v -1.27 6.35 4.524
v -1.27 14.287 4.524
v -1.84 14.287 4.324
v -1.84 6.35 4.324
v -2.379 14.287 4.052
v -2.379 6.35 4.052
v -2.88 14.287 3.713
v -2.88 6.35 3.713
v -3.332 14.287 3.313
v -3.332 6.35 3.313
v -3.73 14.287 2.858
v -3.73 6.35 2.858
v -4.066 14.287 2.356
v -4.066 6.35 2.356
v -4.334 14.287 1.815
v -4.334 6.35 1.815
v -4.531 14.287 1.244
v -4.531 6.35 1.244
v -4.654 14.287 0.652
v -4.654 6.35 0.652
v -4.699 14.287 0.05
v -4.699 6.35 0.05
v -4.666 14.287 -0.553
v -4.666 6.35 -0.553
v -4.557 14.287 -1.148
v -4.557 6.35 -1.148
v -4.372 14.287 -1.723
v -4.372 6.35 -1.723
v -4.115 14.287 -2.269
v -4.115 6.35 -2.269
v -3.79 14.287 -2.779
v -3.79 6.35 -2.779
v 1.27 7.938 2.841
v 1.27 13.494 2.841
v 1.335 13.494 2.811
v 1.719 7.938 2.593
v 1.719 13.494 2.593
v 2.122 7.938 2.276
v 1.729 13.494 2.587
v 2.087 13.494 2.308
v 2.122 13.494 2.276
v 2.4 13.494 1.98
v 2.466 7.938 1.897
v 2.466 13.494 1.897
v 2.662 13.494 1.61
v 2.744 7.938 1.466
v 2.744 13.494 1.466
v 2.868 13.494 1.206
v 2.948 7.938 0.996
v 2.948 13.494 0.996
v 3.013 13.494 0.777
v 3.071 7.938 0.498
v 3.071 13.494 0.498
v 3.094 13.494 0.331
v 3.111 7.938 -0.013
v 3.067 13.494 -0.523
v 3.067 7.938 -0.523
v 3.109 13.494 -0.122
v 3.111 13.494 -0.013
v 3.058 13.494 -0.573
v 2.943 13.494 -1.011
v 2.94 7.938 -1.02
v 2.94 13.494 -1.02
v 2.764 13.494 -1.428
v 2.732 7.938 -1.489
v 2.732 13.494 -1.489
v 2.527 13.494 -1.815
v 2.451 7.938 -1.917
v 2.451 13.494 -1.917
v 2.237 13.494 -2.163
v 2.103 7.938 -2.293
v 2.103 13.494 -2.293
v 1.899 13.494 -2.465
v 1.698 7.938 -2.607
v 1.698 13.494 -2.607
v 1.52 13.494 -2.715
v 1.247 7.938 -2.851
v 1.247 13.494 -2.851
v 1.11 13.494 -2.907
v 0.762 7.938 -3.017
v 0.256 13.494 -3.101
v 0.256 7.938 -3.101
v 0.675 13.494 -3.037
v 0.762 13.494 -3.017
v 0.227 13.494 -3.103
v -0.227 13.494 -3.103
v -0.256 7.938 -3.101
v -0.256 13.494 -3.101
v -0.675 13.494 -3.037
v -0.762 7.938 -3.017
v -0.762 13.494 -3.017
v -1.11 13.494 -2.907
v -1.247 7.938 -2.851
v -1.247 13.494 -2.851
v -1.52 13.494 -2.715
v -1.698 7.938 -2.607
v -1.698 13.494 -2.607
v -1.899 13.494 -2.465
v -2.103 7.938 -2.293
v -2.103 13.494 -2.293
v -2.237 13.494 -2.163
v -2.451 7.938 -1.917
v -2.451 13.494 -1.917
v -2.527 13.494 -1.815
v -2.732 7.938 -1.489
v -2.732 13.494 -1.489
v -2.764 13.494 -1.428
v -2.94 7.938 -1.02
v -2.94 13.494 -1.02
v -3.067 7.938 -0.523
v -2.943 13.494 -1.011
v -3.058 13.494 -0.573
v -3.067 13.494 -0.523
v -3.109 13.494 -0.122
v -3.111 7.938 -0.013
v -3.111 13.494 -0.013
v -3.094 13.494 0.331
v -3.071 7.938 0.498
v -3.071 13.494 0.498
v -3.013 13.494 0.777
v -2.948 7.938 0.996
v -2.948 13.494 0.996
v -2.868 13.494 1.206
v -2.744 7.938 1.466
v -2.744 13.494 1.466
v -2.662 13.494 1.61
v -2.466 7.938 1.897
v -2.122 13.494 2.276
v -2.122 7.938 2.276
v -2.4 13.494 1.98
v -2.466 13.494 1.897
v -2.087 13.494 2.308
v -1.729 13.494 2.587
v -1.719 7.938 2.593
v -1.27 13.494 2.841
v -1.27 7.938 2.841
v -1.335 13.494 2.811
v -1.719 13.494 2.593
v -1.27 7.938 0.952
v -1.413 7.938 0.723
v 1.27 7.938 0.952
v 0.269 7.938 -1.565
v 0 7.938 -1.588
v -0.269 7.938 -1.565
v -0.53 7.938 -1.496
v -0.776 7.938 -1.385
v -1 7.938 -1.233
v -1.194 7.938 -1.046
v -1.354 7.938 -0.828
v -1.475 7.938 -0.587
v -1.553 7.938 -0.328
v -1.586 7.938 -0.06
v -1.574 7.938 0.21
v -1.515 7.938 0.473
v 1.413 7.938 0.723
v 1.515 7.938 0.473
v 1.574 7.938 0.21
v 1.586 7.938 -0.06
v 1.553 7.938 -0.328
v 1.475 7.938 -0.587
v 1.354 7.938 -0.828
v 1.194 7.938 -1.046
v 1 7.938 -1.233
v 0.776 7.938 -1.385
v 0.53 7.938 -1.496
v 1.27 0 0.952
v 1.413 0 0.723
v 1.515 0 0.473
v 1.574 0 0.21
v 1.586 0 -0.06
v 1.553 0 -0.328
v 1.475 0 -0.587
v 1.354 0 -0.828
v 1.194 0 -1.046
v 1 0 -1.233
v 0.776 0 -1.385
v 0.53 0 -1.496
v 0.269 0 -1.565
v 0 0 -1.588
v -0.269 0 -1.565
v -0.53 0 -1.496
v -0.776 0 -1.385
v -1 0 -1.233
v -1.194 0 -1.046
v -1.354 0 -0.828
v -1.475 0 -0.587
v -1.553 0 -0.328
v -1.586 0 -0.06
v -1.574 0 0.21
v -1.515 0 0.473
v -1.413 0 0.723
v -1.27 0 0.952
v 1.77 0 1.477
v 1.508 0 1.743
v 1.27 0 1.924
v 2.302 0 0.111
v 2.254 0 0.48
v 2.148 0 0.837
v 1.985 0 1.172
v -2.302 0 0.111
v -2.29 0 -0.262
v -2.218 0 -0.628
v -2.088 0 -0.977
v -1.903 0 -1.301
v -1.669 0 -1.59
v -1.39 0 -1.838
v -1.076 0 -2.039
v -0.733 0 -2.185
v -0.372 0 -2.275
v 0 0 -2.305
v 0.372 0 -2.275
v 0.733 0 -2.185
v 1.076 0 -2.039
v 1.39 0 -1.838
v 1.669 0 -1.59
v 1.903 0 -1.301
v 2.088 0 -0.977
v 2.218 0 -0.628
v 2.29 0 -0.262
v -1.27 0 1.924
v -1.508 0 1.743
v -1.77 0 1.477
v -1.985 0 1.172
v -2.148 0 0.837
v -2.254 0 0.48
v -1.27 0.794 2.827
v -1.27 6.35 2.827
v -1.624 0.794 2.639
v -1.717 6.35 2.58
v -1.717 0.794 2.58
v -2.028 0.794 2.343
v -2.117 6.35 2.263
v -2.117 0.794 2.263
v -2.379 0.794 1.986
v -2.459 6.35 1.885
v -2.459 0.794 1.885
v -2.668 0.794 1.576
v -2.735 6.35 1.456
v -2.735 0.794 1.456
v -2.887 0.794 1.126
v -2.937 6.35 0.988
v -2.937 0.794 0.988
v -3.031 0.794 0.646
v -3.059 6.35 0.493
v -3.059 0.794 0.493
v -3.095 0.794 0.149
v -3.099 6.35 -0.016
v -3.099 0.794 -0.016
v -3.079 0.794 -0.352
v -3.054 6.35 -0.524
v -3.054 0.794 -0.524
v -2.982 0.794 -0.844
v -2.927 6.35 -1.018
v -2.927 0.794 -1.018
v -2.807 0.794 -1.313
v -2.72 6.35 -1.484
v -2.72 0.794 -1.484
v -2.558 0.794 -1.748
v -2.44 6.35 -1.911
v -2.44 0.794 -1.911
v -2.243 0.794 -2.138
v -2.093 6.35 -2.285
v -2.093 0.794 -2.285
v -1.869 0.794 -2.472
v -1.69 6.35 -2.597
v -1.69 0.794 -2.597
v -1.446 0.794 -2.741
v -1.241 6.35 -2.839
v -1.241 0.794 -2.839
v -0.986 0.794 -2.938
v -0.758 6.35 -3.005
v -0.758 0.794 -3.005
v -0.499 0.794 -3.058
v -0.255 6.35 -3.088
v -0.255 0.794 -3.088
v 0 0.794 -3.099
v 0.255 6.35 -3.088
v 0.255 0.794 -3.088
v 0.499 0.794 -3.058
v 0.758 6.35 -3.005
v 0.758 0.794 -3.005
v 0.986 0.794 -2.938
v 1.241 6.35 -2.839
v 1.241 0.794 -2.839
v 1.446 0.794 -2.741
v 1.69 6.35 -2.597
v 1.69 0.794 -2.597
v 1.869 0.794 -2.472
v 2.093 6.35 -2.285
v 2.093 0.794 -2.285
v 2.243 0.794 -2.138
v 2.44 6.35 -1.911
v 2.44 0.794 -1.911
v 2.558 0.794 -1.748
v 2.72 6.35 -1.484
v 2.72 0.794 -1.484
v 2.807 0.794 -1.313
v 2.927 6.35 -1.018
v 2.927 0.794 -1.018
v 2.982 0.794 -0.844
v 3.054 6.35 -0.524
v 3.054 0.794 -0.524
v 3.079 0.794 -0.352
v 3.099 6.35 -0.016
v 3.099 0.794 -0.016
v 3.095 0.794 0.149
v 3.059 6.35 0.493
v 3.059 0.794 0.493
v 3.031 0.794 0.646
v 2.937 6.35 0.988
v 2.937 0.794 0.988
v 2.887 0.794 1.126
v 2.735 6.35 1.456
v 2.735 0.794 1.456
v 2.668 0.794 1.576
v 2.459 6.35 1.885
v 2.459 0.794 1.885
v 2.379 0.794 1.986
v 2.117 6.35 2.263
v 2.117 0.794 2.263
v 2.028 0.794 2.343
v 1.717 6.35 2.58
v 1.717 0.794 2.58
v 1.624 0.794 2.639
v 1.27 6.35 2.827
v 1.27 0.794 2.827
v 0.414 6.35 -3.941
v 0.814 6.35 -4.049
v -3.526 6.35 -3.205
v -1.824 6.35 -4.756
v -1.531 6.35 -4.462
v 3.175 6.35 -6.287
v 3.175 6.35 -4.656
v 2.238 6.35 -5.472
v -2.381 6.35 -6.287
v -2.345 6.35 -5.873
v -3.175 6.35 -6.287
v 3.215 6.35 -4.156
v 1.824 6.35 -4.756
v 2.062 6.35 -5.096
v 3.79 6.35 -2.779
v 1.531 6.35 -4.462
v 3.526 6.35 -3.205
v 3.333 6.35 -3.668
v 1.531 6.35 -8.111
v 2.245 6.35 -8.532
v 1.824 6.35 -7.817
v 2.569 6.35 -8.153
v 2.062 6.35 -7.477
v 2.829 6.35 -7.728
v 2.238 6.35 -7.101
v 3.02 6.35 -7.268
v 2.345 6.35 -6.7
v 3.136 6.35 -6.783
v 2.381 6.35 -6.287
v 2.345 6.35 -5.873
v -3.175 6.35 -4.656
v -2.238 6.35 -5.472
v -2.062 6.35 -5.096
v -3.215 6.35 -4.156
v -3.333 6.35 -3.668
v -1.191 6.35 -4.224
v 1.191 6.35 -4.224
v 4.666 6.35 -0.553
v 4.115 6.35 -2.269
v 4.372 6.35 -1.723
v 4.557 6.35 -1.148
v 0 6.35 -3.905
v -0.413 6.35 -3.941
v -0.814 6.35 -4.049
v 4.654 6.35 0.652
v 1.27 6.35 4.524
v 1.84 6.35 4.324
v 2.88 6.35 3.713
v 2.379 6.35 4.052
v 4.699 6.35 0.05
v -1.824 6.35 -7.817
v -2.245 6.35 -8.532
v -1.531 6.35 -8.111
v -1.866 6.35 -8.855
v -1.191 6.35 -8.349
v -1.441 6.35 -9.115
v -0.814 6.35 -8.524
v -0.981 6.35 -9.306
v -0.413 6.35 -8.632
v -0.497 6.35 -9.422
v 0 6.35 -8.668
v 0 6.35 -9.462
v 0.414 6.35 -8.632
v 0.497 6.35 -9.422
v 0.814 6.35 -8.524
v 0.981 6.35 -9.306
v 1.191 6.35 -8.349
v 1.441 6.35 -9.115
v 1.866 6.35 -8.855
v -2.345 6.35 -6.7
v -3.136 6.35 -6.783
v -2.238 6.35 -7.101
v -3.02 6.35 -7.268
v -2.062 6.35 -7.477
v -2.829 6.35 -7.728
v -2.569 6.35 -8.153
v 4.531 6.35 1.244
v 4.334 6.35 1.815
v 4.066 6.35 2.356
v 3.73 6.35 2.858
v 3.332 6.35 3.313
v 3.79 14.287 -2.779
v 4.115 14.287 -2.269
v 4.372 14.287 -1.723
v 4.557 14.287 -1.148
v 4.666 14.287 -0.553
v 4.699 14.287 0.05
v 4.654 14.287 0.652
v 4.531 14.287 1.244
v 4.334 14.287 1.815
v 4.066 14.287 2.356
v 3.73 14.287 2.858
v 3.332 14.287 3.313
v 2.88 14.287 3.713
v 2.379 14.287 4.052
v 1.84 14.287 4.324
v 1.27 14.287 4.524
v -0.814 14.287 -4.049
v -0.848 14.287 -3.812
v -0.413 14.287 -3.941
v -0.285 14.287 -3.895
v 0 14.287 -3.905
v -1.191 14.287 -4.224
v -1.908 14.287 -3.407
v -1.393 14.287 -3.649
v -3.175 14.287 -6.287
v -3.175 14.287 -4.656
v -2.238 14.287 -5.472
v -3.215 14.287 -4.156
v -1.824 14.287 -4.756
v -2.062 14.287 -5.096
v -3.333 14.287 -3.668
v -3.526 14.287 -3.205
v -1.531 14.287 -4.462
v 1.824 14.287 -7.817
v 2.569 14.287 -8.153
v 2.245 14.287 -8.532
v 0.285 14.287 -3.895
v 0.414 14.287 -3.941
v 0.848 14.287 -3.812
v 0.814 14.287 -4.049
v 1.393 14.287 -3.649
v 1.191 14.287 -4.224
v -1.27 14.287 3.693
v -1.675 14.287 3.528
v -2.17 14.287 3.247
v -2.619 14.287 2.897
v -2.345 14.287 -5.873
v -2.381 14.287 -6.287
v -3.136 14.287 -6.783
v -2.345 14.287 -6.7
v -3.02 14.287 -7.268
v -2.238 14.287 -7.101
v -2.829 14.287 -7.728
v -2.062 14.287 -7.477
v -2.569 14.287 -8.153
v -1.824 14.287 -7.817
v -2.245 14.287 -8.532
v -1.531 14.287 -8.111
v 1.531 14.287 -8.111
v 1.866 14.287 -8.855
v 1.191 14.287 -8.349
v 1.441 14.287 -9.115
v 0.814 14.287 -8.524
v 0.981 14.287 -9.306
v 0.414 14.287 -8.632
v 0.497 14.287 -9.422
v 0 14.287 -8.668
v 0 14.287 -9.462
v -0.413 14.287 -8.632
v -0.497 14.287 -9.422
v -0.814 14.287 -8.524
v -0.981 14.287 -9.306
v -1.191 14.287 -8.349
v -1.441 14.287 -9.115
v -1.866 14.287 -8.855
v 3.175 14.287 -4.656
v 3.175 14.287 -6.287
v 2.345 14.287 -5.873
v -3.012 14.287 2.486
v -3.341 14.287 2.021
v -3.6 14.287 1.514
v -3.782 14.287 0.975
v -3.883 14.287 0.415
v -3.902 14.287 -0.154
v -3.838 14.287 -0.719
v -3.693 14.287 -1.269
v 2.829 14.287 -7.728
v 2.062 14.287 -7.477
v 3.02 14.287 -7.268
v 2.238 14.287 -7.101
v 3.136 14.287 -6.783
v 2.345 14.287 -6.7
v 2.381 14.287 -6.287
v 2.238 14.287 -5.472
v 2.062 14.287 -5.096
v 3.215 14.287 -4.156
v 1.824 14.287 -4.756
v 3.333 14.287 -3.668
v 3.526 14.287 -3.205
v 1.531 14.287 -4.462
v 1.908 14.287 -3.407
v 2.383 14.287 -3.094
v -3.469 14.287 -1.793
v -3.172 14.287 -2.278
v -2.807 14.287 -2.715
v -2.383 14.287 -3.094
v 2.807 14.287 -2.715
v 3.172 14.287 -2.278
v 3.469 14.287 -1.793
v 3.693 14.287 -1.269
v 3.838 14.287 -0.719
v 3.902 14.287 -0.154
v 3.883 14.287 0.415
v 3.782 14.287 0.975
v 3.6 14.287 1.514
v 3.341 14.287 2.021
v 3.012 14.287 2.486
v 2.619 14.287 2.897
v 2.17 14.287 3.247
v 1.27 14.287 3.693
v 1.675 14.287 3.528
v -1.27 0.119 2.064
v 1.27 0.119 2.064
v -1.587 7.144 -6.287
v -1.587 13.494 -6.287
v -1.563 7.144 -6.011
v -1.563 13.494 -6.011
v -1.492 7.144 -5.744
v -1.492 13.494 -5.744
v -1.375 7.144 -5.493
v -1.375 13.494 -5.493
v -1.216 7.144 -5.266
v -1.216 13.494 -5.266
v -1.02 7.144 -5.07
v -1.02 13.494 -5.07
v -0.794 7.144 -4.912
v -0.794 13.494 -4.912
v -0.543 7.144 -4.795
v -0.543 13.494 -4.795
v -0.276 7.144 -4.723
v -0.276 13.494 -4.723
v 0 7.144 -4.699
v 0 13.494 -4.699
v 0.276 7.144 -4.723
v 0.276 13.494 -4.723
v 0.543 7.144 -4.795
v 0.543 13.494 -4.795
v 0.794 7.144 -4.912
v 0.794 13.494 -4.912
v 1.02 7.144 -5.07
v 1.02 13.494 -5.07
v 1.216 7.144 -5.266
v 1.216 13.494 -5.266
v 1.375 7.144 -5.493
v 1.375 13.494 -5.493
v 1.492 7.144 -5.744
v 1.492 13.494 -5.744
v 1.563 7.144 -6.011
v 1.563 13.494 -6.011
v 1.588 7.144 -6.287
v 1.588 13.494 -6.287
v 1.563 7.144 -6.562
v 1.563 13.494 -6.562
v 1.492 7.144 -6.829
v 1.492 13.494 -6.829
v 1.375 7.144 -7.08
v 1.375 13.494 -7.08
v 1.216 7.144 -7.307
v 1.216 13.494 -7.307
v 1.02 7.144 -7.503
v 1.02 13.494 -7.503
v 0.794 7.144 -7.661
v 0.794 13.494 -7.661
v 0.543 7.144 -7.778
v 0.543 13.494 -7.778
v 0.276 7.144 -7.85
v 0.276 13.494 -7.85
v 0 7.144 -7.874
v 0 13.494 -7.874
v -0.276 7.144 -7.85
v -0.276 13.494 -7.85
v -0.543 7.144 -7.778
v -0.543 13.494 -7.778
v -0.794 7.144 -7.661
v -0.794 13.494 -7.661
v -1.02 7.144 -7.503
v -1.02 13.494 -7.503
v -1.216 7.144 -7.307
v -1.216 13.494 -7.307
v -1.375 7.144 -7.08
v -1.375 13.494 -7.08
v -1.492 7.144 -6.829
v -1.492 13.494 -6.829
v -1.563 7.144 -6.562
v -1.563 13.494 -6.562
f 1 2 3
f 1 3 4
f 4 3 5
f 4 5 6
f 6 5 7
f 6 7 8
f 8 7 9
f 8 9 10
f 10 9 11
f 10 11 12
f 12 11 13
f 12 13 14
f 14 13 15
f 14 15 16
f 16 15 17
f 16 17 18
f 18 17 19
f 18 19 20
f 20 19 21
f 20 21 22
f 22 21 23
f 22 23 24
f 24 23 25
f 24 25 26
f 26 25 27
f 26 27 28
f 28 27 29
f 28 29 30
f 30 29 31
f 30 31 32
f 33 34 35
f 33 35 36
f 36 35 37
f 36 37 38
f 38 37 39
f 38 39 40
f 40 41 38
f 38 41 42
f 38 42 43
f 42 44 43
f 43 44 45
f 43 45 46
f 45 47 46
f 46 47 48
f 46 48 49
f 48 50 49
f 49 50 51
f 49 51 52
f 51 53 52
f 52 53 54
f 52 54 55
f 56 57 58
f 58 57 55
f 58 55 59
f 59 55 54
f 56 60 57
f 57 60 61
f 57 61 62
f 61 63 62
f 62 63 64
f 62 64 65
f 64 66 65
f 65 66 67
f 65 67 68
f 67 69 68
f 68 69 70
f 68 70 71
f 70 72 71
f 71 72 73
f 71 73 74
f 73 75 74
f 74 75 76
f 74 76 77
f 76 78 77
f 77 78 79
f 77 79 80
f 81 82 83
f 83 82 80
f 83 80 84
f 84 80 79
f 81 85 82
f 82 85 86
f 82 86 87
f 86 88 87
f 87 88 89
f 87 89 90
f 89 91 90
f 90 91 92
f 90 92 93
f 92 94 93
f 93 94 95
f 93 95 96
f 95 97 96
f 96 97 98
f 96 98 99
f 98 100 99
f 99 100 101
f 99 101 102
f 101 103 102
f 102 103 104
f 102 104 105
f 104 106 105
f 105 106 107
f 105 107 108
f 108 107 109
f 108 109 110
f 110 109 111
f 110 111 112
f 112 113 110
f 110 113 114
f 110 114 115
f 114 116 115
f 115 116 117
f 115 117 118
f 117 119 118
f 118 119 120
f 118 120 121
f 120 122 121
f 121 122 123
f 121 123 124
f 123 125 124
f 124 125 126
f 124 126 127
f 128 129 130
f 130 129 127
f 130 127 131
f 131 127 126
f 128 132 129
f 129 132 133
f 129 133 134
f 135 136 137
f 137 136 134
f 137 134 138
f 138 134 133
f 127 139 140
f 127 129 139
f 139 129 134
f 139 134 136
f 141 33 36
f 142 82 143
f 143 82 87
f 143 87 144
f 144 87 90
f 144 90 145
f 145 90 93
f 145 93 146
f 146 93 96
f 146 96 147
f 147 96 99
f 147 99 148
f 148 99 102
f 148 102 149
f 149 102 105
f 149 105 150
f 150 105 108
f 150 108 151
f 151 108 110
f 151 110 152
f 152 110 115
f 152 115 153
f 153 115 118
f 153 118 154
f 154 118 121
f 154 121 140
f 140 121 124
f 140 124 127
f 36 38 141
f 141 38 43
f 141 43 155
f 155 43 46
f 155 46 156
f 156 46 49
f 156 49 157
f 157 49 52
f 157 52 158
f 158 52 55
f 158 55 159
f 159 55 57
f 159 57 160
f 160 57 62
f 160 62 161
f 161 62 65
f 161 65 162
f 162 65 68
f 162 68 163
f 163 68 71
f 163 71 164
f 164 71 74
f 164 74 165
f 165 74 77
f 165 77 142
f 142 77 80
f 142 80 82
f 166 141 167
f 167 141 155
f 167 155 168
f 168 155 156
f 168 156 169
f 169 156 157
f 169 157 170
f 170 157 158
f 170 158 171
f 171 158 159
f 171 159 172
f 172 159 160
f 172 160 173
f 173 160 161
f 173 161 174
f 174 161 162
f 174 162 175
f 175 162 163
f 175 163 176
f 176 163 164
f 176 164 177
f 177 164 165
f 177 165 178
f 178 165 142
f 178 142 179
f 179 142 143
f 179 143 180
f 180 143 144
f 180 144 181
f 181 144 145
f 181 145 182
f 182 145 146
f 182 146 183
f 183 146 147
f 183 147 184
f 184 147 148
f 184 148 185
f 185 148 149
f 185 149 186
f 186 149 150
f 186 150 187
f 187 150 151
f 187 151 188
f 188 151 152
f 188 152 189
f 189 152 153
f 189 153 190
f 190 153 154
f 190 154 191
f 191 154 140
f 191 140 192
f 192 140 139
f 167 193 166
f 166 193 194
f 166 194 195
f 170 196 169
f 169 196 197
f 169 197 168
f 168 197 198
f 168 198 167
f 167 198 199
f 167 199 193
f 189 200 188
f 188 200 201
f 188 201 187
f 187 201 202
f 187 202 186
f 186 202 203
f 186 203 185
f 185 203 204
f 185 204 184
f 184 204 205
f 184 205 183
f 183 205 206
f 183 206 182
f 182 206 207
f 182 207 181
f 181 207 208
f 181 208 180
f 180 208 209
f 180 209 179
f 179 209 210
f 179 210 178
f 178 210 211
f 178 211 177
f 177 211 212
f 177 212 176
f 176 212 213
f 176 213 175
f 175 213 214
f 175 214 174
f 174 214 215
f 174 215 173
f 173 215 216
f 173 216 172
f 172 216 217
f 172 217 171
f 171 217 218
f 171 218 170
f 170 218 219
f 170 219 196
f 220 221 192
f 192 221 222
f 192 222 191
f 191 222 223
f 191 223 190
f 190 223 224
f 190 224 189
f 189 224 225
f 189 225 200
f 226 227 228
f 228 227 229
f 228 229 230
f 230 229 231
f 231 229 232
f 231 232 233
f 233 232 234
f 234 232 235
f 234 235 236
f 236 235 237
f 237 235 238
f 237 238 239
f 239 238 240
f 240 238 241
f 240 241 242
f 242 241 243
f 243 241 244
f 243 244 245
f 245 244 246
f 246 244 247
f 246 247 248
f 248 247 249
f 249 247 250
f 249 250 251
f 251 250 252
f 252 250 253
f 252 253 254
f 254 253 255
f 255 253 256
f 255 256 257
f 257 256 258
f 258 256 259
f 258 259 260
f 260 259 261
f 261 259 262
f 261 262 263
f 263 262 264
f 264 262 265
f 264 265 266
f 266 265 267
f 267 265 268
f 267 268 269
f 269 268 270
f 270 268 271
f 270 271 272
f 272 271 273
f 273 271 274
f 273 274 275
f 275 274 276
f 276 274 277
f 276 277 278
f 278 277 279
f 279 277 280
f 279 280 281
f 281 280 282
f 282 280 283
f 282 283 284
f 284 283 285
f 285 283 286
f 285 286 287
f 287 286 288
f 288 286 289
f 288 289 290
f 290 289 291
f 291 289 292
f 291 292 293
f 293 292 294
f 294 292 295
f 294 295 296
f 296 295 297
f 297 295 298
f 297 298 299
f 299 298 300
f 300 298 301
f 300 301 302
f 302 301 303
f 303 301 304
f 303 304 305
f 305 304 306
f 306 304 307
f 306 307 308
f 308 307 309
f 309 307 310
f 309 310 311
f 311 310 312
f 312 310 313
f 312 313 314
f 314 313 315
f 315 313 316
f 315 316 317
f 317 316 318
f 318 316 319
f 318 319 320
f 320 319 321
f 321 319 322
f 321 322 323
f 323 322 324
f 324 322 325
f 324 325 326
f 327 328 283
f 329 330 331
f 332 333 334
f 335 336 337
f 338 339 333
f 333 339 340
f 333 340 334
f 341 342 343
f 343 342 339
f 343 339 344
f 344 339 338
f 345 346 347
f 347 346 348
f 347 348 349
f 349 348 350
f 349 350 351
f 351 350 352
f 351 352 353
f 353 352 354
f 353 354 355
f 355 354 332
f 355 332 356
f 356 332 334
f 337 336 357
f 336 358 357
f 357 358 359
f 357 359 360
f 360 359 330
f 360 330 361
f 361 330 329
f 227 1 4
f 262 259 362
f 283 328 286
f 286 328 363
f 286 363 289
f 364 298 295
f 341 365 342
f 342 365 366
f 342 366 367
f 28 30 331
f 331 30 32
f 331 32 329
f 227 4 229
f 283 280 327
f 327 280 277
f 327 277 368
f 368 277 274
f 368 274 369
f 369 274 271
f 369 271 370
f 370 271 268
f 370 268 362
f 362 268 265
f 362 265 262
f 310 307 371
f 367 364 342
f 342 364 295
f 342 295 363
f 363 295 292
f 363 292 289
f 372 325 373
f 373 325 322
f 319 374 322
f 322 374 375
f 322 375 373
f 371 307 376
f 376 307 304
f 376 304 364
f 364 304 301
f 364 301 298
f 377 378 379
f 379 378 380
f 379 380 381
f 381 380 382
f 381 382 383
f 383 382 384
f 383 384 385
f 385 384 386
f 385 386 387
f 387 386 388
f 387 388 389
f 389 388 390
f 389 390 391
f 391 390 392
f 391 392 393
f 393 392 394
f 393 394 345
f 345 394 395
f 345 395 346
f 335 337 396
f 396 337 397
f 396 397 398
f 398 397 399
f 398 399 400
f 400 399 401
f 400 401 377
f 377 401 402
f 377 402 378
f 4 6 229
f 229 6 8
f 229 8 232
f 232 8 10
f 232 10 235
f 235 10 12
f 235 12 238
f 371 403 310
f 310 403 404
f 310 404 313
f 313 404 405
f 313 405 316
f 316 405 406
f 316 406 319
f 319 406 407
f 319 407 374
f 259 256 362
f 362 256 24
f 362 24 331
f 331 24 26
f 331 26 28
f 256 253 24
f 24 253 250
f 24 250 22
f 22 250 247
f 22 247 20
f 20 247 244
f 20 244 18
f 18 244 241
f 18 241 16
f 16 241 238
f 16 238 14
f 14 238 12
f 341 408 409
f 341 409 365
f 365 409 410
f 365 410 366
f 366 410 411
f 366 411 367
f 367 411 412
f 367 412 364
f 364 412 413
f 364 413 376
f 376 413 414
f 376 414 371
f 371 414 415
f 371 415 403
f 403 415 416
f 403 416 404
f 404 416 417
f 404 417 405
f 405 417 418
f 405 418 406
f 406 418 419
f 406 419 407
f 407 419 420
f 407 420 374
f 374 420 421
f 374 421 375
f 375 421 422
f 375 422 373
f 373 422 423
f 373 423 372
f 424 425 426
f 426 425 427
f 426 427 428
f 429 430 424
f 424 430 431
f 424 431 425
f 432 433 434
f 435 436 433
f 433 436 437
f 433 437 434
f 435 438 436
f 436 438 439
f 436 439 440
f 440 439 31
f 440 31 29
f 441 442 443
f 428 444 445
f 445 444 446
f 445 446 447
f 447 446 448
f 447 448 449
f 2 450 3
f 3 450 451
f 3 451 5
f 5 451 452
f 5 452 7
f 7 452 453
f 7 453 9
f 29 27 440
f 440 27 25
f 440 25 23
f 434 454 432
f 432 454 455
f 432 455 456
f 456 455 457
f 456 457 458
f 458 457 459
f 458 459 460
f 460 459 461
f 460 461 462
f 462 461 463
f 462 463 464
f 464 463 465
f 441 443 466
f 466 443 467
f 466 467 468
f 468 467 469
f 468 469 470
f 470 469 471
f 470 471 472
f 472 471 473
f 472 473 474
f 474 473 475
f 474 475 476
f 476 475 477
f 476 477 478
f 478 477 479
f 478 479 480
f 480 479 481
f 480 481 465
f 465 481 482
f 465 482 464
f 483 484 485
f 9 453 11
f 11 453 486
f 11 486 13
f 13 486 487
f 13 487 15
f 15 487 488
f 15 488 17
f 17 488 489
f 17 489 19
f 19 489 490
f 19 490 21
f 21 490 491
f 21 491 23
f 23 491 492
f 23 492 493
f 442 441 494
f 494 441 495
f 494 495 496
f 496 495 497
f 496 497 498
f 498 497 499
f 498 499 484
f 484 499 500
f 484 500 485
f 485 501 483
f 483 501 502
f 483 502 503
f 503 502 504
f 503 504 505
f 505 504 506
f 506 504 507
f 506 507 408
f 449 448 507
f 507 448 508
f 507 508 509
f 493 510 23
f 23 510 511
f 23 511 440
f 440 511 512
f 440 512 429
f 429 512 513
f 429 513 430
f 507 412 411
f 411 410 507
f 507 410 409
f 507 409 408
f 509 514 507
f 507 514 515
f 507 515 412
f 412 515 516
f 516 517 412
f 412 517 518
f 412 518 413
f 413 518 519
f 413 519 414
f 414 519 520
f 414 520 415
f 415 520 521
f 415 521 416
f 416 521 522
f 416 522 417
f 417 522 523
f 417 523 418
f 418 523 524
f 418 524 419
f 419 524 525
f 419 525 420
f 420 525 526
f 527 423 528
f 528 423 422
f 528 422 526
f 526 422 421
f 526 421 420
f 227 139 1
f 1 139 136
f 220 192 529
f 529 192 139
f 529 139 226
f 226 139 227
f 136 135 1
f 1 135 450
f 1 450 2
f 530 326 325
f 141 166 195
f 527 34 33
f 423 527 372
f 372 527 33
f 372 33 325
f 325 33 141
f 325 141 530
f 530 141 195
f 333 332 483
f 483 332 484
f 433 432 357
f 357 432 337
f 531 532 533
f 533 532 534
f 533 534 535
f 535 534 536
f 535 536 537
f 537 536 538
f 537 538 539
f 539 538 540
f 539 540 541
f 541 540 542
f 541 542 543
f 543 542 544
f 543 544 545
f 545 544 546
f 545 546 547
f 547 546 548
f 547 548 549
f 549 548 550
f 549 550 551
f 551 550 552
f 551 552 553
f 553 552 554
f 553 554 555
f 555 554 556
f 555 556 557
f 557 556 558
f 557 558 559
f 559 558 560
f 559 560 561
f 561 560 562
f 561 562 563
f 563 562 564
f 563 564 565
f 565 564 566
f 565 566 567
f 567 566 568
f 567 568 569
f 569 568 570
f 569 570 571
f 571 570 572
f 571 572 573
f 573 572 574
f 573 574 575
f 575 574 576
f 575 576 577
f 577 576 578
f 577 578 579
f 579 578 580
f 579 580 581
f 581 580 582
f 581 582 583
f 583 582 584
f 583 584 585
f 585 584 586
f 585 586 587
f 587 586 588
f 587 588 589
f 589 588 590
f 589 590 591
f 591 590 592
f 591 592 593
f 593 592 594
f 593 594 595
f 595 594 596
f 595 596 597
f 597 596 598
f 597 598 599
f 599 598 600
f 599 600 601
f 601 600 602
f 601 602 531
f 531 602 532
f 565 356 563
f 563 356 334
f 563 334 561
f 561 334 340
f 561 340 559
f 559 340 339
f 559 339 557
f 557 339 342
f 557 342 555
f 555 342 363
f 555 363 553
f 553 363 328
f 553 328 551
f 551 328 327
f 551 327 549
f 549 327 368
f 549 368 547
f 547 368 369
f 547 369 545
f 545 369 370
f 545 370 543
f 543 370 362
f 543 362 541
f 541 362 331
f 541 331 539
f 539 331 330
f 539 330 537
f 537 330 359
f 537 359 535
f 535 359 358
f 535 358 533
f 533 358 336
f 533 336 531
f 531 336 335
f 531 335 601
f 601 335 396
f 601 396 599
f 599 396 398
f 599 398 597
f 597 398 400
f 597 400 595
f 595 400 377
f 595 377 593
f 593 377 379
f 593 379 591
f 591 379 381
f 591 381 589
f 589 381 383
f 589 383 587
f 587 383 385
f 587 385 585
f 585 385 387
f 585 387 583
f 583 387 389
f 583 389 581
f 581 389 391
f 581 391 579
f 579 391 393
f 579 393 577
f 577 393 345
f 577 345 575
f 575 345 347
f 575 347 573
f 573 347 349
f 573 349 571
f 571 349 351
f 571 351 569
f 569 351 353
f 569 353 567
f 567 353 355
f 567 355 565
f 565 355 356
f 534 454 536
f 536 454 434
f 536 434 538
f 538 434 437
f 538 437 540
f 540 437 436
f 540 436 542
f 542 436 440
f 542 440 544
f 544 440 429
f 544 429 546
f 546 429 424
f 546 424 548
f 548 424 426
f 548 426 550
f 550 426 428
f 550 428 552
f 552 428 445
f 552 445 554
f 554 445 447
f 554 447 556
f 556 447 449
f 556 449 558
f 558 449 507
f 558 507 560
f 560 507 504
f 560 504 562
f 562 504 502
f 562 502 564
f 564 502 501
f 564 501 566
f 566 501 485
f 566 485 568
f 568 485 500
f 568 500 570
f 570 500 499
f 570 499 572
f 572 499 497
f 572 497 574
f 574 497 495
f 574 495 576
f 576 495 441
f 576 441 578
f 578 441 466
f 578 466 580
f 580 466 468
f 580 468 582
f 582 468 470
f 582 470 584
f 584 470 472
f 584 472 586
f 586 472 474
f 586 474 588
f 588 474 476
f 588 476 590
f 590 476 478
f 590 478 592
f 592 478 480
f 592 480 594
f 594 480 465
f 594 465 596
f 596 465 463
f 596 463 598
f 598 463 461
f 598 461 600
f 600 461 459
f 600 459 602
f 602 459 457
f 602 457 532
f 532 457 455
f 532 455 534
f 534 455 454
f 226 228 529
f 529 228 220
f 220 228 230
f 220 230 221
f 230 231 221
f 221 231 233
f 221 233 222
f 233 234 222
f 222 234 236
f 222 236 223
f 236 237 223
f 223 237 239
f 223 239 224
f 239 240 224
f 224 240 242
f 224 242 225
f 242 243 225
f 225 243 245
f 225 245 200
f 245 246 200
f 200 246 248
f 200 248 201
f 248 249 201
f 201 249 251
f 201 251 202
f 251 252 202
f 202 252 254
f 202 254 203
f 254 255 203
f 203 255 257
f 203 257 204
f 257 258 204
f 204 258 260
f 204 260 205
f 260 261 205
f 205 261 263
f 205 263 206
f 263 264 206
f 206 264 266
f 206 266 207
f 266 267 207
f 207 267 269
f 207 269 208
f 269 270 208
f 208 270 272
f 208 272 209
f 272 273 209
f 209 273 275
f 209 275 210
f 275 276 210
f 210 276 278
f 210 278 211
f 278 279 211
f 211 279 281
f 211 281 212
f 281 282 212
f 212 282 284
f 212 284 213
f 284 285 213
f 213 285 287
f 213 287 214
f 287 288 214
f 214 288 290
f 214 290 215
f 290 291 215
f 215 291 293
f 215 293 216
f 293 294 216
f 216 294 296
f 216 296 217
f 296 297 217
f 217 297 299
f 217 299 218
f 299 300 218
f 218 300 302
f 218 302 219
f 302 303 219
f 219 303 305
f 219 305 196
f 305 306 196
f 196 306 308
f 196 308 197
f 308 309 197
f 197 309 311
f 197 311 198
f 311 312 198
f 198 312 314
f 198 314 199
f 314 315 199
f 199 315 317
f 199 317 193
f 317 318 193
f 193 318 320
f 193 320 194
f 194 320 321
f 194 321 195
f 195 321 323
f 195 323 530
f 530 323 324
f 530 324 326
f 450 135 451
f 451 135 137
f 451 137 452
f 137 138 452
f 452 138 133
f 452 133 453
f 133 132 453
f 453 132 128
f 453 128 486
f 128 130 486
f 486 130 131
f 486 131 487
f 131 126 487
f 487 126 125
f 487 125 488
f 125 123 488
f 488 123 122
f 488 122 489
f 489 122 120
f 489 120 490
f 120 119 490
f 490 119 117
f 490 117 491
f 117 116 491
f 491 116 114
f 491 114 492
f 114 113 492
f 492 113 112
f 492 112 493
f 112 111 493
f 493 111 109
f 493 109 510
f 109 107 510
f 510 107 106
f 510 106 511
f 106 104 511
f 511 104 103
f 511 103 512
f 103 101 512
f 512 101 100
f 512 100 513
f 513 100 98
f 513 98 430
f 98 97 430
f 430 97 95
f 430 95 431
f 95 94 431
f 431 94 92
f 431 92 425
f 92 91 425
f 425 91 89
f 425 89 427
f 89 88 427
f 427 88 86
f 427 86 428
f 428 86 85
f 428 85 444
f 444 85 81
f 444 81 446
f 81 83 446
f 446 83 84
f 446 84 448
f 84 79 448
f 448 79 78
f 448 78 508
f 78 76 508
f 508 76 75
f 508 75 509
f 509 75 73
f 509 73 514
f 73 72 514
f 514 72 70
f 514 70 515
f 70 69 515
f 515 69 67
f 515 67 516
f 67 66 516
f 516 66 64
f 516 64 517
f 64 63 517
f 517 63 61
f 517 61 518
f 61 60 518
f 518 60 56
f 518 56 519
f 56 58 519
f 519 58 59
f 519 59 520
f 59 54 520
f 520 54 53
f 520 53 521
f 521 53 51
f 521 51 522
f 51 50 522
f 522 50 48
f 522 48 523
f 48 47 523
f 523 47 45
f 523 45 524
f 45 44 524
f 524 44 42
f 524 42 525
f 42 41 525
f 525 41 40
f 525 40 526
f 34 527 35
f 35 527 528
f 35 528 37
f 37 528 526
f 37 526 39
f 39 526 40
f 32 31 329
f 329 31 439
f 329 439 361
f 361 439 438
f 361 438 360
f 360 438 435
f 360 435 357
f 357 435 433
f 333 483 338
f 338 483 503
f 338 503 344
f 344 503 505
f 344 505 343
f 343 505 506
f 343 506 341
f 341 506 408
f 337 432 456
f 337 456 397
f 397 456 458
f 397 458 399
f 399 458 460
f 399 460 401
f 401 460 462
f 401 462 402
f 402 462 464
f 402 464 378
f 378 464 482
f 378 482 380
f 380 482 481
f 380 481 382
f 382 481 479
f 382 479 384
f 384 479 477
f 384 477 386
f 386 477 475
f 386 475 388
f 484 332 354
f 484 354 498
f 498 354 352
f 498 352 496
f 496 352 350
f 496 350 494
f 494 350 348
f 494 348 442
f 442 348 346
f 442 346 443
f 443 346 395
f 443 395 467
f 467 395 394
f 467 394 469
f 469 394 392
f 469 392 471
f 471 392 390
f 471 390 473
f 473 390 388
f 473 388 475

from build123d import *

# Parameters (mm, degrees)
SKETCH2_W           = 2.54
SKETCH2_H           = 14.2875
CUT_EXTRUDE1_DEPTH  = 16.757342995
SKETCH3_W           = 1.5875
SKETCH3_H           = 7.9375
SKETCH3_W_2         = 4.7625
SKETCH3_H_2         = 4.7625
BOSS_EXTRUDE2_DEPTH = 3.175
SKETCH4_R           = 1.5875
CUT_EXTRUDE2_DEPTH  = 18.768884025
CHAMFER2_SIZE       = 0.79375
FILLET3_R           = 3.175


with BuildPart() as part:
    # Sketch1 → Revolve1 (revolve)
    with BuildSketch(Plane.XY, mode=Mode.PRIVATE) as revolve1_sk:
        Polygon((1.5875, 7.9375), (1.5875, 0), (3.0988, 0), (3.0988, 6.35), (4.699, 6.35), (4.699, 14.2875), (3.1115, 14.2875), (3.1115, 7.9375), align=None)
    revolve(revolve1_sk.sketch.rotate(Axis((0, 0.120875177, 0), (0, -1, 0)), 180), axis=Axis((0, 0.120875177, 0), (0, -1, 0)))

    # Sketch2 → Cut-Extrude1 (cut, through all)
    with BuildSketch(Plane.XY):
        with Locations((0, 7.14375)):
            Rectangle(SKETCH2_W, SKETCH2_H)
    extrude(amount=CUT_EXTRUDE1_DEPTH, mode=Mode.SUBTRACT)

    # Sketch3 → Boss-Extrude2 (add, symmetric)
    # profile 1 of 3: a face of its own
    with BuildSketch(Plane(origin=(0, 0, 0), x_dir=(0, 0, -1), z_dir=(1, 0, 0))):
        with Locations((3.90525, 10.31875)):
            Rectangle(SKETCH3_W, SKETCH3_H)
    # profile 2 of 3: a face of its own
    with BuildSketch(Plane(origin=(0, 0, 0), x_dir=(0, 0, -1), z_dir=(1, 0, 0))):
        with Locations((7.08025, 10.31875)):
            Rectangle(SKETCH3_W_2, SKETCH3_H)
        with Locations((7.08025, 10.31875)):
            Rectangle(SKETCH3_W, SKETCH3_H_2, mode=Mode.SUBTRACT)
    # profile 3 of 3: a face of its own
    with BuildSketch(Plane(origin=(0, 0, 0), x_dir=(0, 0, -1), z_dir=(1, 0, 0))):
        with Locations((7.08025, 10.31875)):
            Rectangle(SKETCH3_W, SKETCH3_H_2)
    extrude(amount=BOSS_EXTRUDE2_DEPTH, both=True)

    # Sketch4 → Cut-Extrude2 (cut, through all)
    with BuildSketch(Plane(origin=(0, 14.2875, 0), x_dir=(1, 0, 0), z_dir=(0, 1, 0))):
        with Locations(Location((0, 6.2865, 0), (0, 0, 180))):
            Circle(SKETCH4_R)
    extrude(amount=-CUT_EXTRUDE2_DEPTH, mode=Mode.SUBTRACT)

    # Chamfer2
    chamfer2_edges = [part.edges().sort_by_distance(p)[0] for p in [
        (0, 14.2875, -3.1115),
        (0, 0, -3.0988),
        (1.5875, 6.35, -6.2865),
        (1.5875, 14.2875, -6.2865),
    ]]
    chamfer(chamfer2_edges, length=CHAMFER2_SIZE - 0.0001)  # a hair under: the kernel refuses the full size

    # Fillet3
    fillet3_edges = [part.edges().sort_by_distance(p)[0] for p in [
        (3.175, 10.31875, -3.464098151),
        (-3.175, 10.31875, -3.464098151),
        (-3.175, 10.31875, -9.4615),
        (3.175, 10.31875, -9.4615),
    ]]
    fillet(fillet3_edges, radius=FILLET3_R - 0.0001)  # a hair under: the kernel refuses the full size


solid = part.part
